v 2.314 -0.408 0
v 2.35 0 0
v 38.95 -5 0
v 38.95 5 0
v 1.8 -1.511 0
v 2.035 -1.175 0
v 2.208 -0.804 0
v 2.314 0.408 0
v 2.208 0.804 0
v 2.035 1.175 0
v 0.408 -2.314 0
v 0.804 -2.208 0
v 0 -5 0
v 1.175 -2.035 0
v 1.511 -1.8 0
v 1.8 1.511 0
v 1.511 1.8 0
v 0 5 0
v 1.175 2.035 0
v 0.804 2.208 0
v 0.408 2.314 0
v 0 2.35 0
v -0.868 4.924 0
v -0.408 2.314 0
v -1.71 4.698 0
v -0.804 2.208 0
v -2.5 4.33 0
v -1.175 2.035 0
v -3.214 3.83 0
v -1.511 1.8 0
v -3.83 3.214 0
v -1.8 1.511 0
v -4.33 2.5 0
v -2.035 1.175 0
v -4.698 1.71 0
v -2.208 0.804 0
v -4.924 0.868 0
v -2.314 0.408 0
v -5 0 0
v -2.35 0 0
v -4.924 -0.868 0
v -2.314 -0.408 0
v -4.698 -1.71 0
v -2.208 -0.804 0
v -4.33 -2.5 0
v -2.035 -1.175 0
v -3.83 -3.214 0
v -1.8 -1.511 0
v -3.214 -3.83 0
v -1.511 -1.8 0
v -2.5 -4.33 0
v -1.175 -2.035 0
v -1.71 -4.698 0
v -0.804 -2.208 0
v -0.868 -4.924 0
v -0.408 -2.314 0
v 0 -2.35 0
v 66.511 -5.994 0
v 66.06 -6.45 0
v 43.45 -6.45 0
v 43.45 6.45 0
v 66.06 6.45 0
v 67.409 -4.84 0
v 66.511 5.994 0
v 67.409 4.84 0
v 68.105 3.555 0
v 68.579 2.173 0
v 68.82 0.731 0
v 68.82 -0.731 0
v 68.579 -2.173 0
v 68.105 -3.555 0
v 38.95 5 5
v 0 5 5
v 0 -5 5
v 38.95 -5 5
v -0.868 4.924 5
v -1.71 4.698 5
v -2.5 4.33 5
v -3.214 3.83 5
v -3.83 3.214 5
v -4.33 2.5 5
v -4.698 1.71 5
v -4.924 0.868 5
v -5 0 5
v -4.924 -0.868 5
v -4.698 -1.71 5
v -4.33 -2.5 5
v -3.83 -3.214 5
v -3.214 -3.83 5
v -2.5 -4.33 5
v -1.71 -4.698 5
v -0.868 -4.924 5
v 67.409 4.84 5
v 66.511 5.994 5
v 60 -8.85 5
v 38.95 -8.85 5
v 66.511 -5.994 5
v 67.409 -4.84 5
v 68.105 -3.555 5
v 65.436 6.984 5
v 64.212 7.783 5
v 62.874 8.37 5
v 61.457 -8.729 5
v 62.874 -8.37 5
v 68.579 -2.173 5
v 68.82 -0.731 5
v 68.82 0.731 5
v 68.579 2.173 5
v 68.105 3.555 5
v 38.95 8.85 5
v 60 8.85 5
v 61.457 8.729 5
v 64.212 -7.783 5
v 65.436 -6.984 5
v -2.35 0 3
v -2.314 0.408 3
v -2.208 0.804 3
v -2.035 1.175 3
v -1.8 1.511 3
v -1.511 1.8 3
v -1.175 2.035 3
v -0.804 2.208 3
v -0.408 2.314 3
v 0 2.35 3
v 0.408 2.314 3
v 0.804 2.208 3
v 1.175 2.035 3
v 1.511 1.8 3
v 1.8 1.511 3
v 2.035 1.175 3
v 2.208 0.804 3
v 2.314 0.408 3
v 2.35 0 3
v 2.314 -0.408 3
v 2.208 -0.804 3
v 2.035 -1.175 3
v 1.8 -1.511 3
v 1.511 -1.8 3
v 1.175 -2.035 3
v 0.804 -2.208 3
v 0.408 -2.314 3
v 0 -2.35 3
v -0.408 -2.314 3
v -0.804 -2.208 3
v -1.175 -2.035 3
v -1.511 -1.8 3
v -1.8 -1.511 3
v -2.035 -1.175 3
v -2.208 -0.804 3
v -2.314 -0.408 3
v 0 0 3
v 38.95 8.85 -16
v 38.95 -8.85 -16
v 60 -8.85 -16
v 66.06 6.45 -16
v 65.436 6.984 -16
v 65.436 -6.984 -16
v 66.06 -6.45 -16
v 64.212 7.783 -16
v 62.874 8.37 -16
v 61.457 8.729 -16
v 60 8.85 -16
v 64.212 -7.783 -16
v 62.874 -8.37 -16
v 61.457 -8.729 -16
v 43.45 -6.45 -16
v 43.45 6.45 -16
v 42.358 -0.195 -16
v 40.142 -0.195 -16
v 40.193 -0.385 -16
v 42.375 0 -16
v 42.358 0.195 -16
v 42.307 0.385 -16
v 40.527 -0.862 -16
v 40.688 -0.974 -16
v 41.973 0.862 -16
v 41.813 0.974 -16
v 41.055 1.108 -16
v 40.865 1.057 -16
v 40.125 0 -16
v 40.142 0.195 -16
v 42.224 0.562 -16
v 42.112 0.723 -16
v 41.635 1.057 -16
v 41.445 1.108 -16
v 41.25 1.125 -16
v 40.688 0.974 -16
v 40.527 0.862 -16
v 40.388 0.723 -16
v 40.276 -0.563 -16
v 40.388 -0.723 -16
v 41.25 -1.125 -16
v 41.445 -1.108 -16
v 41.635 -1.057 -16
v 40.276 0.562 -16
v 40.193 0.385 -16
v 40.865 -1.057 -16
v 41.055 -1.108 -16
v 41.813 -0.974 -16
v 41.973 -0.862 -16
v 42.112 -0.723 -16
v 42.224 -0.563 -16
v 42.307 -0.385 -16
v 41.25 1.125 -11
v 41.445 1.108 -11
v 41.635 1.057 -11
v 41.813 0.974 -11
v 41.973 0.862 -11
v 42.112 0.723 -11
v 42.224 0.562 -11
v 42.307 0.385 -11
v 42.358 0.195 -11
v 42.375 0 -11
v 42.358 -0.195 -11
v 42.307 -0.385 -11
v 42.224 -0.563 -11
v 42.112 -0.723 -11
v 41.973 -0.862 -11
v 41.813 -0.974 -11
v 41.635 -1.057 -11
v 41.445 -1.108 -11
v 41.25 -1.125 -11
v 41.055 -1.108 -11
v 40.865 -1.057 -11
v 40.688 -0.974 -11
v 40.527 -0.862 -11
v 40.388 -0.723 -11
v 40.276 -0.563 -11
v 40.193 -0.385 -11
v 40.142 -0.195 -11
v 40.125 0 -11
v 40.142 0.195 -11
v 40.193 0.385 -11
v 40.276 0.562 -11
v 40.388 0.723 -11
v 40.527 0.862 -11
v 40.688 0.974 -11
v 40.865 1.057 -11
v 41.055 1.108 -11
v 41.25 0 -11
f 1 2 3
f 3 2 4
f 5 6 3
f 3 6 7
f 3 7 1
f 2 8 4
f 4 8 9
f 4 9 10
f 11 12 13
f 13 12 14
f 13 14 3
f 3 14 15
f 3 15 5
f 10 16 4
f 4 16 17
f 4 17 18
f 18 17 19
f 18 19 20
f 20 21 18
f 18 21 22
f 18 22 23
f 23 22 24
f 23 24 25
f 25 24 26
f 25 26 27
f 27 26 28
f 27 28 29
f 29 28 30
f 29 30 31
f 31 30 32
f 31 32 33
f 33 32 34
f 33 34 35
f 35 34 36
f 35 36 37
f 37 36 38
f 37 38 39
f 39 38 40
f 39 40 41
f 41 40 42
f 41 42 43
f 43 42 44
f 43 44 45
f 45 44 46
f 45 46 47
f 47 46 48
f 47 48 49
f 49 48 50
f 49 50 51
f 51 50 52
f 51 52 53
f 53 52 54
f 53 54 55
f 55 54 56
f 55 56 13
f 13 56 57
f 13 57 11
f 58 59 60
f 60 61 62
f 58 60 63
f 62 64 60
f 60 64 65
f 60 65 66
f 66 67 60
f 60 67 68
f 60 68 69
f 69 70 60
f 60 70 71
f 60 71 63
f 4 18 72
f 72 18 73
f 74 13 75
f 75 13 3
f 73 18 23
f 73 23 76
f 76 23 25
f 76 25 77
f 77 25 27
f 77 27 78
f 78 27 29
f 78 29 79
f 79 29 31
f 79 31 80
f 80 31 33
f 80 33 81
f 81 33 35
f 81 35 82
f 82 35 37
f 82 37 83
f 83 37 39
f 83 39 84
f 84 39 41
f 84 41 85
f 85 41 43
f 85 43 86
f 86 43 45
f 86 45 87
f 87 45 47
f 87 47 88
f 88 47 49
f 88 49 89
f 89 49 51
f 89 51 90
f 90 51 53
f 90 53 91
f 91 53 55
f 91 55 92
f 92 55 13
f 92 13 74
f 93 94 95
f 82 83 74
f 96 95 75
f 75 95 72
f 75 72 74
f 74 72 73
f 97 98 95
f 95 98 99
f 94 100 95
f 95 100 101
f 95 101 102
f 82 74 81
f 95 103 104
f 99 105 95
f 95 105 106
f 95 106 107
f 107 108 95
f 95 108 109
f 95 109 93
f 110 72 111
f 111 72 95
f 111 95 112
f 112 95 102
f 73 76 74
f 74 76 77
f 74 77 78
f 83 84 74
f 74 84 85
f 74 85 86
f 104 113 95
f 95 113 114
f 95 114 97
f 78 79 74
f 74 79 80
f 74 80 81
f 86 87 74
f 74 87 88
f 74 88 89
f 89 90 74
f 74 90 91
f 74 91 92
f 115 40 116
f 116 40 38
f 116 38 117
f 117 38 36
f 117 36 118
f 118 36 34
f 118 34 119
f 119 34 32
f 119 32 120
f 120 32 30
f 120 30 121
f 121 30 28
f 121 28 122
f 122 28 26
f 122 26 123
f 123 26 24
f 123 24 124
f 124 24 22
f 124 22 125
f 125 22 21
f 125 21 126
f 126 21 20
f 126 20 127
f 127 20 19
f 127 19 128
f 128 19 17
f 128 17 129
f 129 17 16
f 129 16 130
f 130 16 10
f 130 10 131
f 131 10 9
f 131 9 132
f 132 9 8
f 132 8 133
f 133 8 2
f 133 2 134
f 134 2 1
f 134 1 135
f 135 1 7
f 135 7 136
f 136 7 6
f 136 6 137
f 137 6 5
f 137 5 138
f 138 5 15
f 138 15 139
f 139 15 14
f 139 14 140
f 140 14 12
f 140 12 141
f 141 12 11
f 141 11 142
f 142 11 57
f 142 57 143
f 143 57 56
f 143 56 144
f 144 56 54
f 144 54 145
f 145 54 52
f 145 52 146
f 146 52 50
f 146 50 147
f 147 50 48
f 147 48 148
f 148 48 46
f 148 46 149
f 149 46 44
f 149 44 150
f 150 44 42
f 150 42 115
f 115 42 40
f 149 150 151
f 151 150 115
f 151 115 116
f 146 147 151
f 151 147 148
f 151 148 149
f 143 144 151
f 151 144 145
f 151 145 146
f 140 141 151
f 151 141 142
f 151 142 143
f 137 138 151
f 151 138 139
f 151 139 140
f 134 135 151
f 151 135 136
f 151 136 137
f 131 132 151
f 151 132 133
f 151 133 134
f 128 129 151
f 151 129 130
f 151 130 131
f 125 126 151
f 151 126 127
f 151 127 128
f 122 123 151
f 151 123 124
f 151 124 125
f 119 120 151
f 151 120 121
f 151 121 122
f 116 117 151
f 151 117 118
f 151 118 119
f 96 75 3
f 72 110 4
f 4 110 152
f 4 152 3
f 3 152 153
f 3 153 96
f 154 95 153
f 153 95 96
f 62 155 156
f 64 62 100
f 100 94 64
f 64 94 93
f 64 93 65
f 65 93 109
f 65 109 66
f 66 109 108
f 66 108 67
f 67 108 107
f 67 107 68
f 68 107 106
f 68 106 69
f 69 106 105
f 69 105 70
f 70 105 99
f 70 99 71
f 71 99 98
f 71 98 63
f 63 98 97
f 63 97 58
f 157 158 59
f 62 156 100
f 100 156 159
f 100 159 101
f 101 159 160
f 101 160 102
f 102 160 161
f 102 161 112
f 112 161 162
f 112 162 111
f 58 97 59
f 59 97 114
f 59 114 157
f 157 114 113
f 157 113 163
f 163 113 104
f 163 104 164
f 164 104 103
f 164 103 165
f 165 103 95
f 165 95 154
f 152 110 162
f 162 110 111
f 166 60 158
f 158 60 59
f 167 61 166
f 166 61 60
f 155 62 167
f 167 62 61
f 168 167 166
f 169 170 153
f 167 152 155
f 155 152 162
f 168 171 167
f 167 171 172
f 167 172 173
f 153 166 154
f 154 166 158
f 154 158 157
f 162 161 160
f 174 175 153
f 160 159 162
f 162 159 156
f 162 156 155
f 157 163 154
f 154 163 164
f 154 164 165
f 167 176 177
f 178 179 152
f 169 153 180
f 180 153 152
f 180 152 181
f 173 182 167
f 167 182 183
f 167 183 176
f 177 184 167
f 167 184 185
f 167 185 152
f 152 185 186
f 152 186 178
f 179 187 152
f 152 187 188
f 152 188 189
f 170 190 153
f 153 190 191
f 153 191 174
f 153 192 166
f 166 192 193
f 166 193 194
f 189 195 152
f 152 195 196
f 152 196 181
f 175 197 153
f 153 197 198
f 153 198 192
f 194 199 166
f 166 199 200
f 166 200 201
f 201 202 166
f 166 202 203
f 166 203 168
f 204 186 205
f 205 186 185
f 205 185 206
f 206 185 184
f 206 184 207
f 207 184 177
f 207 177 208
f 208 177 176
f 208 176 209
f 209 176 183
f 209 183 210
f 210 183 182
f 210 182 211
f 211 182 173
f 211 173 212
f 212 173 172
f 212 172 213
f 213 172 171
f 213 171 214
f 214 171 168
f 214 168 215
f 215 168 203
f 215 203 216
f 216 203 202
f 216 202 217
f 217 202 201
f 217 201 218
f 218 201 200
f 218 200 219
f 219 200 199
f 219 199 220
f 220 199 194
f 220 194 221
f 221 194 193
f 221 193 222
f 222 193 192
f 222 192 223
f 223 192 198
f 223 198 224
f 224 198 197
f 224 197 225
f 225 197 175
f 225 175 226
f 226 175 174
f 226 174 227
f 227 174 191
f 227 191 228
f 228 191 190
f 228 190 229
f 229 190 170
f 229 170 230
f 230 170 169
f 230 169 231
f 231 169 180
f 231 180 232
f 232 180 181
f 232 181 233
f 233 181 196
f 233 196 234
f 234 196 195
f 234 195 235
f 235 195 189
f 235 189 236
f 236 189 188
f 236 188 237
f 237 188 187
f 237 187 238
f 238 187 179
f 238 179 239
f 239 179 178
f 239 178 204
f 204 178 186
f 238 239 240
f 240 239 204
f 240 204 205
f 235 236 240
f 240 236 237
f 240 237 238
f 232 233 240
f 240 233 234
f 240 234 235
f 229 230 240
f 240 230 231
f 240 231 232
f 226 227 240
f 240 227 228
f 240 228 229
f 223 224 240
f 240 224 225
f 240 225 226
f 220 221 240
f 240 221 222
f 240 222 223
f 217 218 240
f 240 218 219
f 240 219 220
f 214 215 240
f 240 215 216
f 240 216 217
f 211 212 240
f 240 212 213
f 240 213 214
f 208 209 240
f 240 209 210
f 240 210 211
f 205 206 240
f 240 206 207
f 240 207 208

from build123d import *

# Parameters (mm, degrees)
BOSS_EXTRUDE1_DEPTH = 5
SKETCH2_R           = 2.35
CUT_EXTRUDE1_DEPTH  = 3
BOSS_EXTRUDE3_DEPTH = 5
BOSS_EXTRUDE4_DEPTH = 16
SKETCH5_R           = 1.025
CUT_EXTRUDE2_DEPTH  = 5


with BuildPart() as part:
    # Sketch1 → Boss-Extrude1 (new body)
    with BuildSketch(Plane.XY):
        with BuildLine():
            Line((0, 5), (60, 5))
            ThreePointArc((60, 5), (65, 0), (60, -5))
            Line((60, -5), (0, -5))
            ThreePointArc((0, -5), (-5, 0), (0, 5))
        make_face()
    extrude(amount=BOSS_EXTRUDE1_DEPTH)

    # Sketch2 → Cut-Extrude1 (cut)
    with BuildSketch(Plane(origin=(0, 0, 0), x_dir=(-1, 0, 0), z_dir=(0, 0, -1))):
        Circle(SKETCH2_R)
    extrude(amount=-CUT_EXTRUDE1_DEPTH, mode=Mode.SUBTRACT)

    # Sketch3 → Boss-Extrude3 (add)
    with BuildSketch(Plane.XY.offset(5)):
        with BuildLine():
            Line((38.95, -6.35), (38.95, 6.35))
            Line((38.95, 6.35), (38.95, 8.85))
            Line((38.95, 8.85), (60, 8.85))
            ThreePointArc((60, 8.85), (68.85, 0), (60, -8.85))
            Line((60, -8.85), (38.95, -8.85))
            Line((38.95, -8.85), (38.95, -6.35))
        make_face()
    extrude(amount=-BOSS_EXTRUDE3_DEPTH)

    # Sketch4 → Boss-Extrude4 (add)
    with BuildSketch(Plane(origin=(0, 0, 0), x_dir=(-1, 0, 0), z_dir=(0, 0, -1))):
        with BuildLine():
            Line((-60, 8.85), (-38.95, 8.85))
            Line((-38.95, 8.85), (-38.95, 5))
            Line((-38.95, 5), (-38.95, -5))
            Line((-38.95, -5), (-38.95, -8.85))
            Line((-38.95, -8.85), (-60, -8.85))
            ThreePointArc((-60, -8.85), (-63.258834147, -8.228152891), (-66.059702963, -6.45))
            Line((-66.059702963, -6.45), (-43.45, -6.45))
            Line((-43.45, -6.45), (-43.45, 6.45))
            Line((-43.45, 6.45), (-66.059702963, 6.45))
            ThreePointArc((-66.059702963, 6.45), (-63.258834147, 8.228152891), (-60, 8.85))
        make_face()
    extrude(amount=BOSS_EXTRUDE4_DEPTH)

    # Sketch5 → Cut-Extrude2 (cut)
    with BuildSketch(Plane(origin=(0, 0, -16), x_dir=(-1, 0, 0), z_dir=(0, 0, -1))):
        with Locations((-41.25, 0)):
            Circle(SKETCH5_R)
    extrude(amount=-CUT_EXTRUDE2_DEPTH, mode=Mode.SUBTRACT)


solid = part.part
